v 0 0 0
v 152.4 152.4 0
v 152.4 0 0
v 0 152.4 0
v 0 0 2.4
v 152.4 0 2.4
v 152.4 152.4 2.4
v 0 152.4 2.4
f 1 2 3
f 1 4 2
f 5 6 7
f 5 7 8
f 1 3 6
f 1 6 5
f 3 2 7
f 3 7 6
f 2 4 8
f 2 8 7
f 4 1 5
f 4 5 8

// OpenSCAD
// Dimensions in millimetres. Print flat at 100% scale.
cube([152.4, 152.4, 2.4]);
